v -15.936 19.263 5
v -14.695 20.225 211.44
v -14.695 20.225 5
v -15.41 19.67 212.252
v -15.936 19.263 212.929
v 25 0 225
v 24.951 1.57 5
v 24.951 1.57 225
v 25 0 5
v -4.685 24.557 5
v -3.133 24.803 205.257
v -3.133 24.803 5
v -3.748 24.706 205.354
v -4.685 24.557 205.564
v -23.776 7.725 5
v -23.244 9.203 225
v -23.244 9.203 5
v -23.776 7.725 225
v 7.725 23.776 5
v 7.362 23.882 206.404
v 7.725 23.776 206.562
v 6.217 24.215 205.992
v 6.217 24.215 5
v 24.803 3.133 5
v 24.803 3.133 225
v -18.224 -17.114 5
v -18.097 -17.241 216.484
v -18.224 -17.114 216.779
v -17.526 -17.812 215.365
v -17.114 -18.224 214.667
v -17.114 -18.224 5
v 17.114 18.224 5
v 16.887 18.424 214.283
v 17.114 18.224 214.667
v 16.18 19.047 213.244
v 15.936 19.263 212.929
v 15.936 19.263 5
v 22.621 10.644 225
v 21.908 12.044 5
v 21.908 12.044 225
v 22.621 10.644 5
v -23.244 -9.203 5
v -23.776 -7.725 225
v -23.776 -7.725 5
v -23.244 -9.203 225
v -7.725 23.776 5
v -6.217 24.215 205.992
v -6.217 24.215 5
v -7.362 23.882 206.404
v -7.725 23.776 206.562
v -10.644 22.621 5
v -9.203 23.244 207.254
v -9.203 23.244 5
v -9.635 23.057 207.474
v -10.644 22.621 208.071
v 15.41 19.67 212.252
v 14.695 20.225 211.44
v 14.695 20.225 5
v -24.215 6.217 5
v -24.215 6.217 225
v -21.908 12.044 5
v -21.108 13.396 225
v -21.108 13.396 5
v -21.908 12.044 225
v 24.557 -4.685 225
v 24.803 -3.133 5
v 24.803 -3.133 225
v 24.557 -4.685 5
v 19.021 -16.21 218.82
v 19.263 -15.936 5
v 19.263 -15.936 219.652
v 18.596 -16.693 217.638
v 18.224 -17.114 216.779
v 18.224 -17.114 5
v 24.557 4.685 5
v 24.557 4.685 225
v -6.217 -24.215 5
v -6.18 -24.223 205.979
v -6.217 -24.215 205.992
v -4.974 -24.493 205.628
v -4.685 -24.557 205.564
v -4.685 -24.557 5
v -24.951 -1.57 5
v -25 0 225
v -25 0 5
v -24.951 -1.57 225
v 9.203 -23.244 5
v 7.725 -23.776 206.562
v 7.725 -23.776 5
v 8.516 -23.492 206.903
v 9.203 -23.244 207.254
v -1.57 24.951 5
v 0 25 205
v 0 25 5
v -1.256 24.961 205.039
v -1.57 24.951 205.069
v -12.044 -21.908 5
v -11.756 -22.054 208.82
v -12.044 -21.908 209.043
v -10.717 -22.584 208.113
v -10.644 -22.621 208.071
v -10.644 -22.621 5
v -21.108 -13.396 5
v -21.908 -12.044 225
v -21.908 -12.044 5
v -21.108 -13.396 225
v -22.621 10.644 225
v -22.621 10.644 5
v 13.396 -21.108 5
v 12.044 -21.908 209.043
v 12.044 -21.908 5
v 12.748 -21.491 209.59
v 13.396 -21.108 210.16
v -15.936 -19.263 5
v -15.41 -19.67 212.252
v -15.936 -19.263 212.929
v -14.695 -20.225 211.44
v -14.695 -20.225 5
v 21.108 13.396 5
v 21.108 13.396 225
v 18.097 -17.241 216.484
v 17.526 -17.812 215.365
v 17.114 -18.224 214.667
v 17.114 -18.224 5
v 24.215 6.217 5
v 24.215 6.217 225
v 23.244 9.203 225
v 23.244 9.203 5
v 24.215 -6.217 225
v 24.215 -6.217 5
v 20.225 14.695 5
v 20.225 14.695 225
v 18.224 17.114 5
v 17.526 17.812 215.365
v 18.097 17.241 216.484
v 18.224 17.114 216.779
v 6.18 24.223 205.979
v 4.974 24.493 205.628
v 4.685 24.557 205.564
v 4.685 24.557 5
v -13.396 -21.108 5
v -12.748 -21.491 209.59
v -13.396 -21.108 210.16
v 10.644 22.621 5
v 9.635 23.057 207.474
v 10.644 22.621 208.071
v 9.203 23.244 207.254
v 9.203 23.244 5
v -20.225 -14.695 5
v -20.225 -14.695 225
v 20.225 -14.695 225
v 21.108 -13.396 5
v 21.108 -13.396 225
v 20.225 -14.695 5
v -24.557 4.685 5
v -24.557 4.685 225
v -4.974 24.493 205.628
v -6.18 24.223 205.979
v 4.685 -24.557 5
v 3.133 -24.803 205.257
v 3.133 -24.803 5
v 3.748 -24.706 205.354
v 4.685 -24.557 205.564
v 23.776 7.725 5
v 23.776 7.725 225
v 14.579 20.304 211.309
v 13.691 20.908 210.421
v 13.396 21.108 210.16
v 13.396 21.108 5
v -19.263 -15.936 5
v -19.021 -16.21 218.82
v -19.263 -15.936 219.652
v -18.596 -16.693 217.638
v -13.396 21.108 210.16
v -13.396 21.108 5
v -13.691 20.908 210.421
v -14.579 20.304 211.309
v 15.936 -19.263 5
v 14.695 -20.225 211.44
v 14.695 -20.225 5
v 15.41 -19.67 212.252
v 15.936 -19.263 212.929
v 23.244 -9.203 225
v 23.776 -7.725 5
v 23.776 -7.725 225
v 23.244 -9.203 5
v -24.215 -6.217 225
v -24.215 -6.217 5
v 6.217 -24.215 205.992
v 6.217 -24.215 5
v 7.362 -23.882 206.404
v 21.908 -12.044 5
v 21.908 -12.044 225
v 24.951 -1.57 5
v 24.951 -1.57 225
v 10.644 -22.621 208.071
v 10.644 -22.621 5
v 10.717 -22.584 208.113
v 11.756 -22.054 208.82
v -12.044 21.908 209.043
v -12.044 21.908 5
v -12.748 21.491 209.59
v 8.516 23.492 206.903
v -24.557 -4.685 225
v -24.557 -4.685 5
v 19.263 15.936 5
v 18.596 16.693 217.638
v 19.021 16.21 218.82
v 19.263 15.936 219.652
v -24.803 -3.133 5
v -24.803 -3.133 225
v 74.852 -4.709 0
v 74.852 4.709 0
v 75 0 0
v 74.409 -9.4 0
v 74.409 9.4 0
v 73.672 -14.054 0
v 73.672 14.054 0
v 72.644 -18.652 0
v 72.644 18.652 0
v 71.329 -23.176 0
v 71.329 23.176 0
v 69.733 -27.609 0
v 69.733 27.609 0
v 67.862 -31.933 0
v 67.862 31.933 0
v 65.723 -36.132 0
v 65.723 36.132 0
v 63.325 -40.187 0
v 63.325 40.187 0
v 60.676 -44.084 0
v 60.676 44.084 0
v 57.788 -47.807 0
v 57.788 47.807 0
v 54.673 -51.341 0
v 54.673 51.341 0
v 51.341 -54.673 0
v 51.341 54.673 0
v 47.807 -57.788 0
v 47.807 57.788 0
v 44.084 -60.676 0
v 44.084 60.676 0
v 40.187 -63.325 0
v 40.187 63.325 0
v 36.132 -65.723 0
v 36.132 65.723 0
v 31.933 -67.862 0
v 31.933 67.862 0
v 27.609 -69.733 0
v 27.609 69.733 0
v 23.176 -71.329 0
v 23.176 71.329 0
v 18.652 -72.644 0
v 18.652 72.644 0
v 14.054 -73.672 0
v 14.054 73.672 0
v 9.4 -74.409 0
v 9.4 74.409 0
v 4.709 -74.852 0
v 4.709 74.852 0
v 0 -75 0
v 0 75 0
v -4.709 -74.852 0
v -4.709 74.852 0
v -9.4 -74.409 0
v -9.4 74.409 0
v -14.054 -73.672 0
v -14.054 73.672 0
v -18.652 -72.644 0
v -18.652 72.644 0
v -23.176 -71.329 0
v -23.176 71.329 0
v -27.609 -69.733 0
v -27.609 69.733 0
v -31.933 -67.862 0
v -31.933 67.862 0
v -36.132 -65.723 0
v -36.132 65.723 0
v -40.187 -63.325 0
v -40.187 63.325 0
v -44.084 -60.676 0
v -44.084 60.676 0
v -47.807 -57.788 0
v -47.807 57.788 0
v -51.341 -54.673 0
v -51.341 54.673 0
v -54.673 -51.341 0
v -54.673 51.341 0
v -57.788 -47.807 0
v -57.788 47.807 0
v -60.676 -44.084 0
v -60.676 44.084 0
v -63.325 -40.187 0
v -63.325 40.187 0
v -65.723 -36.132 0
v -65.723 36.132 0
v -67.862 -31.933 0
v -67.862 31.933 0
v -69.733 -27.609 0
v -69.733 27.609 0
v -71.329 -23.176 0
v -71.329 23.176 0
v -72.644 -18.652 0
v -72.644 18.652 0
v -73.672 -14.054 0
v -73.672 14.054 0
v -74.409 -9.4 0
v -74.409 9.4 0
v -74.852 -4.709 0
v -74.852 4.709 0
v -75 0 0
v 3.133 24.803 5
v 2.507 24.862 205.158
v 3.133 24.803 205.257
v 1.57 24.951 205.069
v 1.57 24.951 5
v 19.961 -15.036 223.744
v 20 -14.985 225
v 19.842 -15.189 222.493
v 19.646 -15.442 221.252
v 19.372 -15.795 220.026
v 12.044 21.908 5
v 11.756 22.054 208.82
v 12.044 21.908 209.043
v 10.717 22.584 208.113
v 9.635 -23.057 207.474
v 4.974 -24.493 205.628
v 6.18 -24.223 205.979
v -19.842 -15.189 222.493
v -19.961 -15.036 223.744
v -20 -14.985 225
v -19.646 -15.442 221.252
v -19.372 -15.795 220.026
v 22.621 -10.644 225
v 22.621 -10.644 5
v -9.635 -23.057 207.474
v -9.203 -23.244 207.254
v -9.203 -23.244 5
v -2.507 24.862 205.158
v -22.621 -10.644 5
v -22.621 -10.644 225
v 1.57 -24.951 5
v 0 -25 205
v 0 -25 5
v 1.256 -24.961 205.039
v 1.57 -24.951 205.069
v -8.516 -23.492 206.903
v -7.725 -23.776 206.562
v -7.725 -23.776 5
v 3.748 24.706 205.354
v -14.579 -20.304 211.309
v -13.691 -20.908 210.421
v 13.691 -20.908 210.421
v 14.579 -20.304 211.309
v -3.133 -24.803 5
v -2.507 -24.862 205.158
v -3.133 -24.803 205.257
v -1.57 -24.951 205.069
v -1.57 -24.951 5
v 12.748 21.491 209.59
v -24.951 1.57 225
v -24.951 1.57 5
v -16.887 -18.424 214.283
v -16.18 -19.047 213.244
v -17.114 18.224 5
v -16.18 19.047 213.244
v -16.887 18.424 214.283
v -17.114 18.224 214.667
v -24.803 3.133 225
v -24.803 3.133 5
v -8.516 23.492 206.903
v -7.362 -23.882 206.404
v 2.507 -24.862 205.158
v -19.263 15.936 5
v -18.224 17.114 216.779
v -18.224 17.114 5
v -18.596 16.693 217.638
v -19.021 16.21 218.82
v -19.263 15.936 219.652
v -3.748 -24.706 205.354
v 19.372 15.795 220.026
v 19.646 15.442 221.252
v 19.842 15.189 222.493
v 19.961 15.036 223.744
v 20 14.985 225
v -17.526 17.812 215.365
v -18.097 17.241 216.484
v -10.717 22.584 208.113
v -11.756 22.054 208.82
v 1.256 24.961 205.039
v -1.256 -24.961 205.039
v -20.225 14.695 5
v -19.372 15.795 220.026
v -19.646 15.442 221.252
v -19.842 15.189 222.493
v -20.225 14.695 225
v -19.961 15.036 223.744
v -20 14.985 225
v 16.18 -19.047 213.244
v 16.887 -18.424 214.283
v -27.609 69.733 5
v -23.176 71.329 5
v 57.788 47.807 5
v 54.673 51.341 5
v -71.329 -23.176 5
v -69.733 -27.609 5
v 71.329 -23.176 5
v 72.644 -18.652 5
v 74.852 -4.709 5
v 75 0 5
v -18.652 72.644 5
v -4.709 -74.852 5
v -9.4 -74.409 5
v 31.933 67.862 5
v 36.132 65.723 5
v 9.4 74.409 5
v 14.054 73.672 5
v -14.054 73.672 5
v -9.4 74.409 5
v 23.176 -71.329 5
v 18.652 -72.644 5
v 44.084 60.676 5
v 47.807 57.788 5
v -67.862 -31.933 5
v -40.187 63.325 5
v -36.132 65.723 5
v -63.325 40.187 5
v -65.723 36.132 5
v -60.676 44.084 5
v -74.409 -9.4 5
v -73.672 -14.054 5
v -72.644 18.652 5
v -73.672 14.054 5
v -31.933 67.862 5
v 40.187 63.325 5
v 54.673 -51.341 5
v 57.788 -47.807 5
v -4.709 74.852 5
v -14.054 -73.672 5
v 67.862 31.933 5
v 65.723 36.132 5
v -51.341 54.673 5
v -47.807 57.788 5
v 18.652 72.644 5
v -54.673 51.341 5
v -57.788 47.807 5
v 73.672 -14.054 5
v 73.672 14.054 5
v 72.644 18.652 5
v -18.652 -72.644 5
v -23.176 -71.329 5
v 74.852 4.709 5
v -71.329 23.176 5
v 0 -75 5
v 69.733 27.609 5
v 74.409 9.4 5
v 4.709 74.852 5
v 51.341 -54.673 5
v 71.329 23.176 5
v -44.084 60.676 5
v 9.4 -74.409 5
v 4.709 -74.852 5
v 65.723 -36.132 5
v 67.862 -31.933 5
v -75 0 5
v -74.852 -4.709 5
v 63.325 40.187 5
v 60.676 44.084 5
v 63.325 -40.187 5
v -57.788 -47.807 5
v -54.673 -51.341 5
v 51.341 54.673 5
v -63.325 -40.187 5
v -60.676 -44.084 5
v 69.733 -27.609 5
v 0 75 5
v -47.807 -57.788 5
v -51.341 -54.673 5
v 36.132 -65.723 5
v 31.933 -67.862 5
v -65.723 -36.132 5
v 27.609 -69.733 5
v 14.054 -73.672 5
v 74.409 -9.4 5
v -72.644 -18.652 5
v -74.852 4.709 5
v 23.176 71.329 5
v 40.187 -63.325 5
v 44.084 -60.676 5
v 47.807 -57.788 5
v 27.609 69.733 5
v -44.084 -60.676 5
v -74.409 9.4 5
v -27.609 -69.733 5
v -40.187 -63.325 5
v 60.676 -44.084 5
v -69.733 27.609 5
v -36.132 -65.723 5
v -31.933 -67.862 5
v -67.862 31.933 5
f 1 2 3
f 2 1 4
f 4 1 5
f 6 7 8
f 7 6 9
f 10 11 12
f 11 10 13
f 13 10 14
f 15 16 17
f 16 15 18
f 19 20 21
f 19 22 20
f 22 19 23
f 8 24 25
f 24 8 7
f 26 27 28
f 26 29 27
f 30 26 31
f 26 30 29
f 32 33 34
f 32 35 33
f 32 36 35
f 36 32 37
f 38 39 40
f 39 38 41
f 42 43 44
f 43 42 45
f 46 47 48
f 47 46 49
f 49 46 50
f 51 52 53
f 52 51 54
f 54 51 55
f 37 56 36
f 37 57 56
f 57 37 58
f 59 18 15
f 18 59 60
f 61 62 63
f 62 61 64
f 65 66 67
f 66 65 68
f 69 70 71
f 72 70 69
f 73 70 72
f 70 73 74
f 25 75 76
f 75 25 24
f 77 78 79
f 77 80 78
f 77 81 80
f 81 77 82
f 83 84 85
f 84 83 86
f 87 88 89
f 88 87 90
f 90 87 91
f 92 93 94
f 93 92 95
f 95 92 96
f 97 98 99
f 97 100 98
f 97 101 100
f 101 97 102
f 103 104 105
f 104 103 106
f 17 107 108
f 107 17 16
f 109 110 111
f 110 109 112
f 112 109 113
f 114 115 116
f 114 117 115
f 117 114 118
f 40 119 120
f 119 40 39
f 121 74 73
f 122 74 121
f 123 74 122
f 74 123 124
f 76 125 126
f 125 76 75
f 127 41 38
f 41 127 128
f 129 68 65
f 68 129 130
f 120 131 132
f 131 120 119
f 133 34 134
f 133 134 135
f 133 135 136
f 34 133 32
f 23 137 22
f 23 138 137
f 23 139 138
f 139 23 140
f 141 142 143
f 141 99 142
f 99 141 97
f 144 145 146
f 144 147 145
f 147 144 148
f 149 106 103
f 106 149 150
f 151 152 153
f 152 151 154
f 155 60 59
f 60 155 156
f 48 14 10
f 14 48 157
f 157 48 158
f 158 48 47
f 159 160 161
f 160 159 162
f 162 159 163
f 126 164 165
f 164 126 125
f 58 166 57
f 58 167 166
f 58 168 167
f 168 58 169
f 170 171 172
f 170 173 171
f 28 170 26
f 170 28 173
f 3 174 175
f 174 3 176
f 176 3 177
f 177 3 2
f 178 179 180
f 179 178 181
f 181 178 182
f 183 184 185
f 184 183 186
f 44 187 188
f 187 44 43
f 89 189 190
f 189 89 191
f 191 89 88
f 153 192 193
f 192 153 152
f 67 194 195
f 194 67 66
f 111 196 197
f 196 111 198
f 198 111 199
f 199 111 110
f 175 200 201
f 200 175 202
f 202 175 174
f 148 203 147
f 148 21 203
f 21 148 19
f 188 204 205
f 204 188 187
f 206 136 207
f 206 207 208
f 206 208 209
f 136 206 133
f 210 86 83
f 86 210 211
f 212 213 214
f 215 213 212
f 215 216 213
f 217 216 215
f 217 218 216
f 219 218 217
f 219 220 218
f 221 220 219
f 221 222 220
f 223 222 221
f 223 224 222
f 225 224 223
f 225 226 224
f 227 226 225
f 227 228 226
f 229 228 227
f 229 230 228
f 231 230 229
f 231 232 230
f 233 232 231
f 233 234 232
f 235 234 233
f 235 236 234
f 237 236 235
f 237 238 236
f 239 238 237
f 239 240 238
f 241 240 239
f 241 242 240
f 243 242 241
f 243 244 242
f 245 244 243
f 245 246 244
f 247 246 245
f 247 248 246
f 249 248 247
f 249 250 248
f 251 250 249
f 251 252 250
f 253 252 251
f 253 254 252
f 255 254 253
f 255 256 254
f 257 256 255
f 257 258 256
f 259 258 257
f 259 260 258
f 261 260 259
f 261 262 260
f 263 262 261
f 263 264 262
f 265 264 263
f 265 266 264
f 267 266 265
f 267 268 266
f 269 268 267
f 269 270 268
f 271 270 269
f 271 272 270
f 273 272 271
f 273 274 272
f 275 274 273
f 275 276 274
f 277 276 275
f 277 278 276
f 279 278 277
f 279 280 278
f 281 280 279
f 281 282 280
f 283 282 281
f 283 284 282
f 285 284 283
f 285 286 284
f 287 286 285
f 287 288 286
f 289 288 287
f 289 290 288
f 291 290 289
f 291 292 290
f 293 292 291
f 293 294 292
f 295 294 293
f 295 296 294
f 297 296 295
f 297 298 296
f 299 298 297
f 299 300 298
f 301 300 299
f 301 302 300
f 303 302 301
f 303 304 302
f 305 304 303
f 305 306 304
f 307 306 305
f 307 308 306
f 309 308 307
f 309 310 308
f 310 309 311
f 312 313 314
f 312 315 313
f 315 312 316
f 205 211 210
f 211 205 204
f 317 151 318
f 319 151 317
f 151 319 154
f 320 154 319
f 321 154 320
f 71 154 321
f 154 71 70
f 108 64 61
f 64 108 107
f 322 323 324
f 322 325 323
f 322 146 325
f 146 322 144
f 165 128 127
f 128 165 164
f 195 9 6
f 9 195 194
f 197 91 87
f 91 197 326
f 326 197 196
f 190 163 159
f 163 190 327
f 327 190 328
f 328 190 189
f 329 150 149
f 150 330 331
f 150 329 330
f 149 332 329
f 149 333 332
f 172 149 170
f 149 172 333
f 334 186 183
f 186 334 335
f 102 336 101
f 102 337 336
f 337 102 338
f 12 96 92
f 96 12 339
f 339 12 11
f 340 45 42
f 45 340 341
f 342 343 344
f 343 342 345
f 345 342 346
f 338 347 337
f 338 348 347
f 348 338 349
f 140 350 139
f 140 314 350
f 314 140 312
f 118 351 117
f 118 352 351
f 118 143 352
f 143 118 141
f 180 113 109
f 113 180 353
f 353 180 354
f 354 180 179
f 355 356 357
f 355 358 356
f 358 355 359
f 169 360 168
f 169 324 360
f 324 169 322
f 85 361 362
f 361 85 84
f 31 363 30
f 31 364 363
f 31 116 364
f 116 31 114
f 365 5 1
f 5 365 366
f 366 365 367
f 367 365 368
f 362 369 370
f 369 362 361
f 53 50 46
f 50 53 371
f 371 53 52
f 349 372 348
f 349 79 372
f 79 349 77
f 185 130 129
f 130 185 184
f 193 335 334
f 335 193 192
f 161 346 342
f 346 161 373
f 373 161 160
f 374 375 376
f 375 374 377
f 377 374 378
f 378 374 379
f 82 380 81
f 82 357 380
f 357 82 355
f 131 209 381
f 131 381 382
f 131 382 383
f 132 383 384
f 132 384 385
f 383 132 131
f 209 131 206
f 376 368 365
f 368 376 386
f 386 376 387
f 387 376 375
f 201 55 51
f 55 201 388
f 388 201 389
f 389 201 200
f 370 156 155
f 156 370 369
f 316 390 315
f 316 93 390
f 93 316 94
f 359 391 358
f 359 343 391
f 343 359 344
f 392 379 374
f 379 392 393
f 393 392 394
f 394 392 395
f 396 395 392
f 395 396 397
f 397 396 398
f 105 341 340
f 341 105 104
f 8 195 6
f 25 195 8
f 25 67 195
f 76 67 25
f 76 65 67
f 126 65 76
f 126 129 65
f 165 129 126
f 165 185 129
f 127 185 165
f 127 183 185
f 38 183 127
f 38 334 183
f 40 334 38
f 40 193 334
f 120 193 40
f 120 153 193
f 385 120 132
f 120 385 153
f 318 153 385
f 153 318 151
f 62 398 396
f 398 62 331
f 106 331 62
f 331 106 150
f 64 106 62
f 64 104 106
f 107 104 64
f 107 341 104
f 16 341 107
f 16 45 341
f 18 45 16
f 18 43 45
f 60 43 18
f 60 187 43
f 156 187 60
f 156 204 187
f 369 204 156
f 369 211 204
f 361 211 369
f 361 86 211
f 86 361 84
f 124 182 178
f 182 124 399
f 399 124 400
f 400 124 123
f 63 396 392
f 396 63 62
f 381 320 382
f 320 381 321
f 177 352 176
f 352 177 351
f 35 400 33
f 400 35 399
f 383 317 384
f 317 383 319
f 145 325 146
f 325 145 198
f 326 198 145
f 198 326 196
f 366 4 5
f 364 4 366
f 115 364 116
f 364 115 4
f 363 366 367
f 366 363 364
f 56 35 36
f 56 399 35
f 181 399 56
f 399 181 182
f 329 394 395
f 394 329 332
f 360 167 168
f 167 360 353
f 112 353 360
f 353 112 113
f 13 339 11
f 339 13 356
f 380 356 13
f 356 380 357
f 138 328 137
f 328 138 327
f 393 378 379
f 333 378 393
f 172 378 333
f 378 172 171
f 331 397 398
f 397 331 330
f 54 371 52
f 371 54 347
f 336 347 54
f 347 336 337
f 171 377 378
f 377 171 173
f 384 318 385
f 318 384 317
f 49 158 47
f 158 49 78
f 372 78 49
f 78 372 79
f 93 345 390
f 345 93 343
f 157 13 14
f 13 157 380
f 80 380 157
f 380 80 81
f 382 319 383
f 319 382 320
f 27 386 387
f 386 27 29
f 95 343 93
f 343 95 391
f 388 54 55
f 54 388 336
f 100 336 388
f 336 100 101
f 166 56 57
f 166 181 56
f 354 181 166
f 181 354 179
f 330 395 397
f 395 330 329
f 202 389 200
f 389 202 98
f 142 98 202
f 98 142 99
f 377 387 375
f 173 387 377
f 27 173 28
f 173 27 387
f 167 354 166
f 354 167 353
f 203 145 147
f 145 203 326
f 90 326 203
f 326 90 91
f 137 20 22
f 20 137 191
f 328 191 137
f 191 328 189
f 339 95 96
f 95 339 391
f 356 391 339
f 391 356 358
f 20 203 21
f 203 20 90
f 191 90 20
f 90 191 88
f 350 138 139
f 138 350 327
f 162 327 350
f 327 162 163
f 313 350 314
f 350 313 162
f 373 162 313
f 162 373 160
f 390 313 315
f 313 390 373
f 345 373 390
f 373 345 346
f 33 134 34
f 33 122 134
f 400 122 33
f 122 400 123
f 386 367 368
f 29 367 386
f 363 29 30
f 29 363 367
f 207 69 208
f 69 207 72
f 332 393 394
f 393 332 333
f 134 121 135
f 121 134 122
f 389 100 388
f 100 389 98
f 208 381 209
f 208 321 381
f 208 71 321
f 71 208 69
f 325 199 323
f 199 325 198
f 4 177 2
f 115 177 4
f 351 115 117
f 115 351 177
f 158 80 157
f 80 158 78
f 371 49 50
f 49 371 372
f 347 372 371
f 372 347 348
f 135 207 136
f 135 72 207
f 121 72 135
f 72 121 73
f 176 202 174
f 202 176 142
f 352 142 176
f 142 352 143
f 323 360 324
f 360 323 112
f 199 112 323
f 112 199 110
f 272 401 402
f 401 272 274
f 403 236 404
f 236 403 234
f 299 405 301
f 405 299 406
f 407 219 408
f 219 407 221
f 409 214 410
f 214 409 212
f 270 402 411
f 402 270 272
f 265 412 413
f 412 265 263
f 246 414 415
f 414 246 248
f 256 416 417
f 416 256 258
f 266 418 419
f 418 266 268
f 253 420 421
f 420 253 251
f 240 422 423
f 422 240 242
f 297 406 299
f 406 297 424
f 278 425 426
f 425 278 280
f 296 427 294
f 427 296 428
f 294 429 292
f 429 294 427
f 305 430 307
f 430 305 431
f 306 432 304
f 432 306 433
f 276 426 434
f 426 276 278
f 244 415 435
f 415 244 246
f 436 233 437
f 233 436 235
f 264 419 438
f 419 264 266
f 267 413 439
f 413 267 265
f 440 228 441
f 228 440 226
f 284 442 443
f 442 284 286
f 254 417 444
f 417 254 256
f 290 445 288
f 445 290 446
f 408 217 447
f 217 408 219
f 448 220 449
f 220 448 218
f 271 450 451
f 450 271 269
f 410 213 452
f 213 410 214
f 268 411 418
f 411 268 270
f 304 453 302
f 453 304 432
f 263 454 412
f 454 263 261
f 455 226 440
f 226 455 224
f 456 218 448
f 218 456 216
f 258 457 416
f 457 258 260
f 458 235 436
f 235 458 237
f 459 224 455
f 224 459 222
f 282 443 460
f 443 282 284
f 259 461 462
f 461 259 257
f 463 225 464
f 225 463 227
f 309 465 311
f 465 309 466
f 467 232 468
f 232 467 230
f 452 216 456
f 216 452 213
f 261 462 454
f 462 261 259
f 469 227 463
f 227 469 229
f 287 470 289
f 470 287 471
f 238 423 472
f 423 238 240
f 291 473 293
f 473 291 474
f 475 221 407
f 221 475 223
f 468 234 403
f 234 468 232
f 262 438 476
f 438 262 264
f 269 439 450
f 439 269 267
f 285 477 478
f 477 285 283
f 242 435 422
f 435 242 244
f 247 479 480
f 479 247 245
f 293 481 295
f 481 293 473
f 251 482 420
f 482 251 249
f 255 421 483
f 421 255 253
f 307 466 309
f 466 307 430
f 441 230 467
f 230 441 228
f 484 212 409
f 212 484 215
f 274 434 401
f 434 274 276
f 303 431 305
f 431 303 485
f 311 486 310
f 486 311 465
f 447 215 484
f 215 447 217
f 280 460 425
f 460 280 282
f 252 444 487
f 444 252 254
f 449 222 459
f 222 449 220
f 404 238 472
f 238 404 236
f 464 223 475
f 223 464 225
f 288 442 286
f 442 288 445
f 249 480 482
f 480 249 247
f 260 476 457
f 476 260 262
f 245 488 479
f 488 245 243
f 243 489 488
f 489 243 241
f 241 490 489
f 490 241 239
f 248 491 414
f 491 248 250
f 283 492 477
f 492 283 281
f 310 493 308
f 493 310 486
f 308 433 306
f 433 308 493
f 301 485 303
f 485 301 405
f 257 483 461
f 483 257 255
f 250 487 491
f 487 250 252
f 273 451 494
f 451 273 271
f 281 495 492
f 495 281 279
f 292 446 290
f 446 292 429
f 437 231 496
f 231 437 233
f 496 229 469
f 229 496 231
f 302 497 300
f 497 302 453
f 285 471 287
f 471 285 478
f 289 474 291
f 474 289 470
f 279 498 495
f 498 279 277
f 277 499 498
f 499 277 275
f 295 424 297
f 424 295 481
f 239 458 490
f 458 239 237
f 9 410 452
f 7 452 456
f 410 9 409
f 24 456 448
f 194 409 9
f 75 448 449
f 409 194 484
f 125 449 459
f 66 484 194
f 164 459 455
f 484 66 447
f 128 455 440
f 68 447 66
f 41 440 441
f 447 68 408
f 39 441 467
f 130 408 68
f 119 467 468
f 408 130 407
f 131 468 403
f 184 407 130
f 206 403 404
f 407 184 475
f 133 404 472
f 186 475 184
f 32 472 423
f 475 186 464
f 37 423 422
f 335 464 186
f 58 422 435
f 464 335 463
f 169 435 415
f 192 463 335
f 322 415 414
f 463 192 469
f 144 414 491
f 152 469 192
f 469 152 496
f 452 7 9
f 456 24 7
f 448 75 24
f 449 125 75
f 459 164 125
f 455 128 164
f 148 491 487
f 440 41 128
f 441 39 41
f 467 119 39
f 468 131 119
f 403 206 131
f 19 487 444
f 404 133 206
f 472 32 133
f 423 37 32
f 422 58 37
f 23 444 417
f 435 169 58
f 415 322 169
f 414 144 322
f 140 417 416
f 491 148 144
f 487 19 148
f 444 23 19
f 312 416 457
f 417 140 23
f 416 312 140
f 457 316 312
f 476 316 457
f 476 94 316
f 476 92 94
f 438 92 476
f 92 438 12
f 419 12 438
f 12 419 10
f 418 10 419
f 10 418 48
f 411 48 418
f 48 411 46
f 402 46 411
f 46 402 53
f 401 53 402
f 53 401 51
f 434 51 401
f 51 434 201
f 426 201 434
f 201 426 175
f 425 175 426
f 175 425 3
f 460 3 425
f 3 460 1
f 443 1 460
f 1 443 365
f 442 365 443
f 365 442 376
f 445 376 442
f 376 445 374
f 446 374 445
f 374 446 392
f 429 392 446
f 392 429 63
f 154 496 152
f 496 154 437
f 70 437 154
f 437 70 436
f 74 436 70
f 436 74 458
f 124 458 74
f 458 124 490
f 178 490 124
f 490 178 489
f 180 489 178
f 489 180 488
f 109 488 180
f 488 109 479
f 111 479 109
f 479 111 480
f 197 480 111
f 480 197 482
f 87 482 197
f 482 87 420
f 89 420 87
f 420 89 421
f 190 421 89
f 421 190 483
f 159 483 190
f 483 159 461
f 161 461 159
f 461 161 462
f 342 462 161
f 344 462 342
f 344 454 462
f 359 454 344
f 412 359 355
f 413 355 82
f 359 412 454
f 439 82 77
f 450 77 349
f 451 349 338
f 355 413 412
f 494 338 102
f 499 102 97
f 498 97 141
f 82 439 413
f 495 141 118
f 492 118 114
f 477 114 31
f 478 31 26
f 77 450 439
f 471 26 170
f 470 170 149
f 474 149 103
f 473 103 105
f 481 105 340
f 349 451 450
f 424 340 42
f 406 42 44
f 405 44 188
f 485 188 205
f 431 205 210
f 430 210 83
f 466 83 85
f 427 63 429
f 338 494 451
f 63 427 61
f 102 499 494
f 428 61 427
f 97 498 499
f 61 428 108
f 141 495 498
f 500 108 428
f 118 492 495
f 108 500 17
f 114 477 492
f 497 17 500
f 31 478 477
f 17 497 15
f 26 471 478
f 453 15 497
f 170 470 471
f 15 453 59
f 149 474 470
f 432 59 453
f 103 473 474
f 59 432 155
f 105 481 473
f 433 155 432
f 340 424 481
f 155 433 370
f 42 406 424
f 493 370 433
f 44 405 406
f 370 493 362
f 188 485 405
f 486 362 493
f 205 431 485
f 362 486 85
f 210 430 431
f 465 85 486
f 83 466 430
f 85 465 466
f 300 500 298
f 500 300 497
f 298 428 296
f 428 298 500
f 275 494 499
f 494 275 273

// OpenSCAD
/* Basic headphone holder */
$fn = 100;
height = 225;
headphoneWidth = 40;


base();
holder();

module base() {
    cylinder(h = 5, r = 75);
}

module holder() {
    difference() {
        cylinder(h = height, r = headphoneWidth/2+5);
        rotate([90, 0, 0])
        translate([0, height, -30])
        cylinder(h = 60, r = headphoneWidth/2);
    }
}
